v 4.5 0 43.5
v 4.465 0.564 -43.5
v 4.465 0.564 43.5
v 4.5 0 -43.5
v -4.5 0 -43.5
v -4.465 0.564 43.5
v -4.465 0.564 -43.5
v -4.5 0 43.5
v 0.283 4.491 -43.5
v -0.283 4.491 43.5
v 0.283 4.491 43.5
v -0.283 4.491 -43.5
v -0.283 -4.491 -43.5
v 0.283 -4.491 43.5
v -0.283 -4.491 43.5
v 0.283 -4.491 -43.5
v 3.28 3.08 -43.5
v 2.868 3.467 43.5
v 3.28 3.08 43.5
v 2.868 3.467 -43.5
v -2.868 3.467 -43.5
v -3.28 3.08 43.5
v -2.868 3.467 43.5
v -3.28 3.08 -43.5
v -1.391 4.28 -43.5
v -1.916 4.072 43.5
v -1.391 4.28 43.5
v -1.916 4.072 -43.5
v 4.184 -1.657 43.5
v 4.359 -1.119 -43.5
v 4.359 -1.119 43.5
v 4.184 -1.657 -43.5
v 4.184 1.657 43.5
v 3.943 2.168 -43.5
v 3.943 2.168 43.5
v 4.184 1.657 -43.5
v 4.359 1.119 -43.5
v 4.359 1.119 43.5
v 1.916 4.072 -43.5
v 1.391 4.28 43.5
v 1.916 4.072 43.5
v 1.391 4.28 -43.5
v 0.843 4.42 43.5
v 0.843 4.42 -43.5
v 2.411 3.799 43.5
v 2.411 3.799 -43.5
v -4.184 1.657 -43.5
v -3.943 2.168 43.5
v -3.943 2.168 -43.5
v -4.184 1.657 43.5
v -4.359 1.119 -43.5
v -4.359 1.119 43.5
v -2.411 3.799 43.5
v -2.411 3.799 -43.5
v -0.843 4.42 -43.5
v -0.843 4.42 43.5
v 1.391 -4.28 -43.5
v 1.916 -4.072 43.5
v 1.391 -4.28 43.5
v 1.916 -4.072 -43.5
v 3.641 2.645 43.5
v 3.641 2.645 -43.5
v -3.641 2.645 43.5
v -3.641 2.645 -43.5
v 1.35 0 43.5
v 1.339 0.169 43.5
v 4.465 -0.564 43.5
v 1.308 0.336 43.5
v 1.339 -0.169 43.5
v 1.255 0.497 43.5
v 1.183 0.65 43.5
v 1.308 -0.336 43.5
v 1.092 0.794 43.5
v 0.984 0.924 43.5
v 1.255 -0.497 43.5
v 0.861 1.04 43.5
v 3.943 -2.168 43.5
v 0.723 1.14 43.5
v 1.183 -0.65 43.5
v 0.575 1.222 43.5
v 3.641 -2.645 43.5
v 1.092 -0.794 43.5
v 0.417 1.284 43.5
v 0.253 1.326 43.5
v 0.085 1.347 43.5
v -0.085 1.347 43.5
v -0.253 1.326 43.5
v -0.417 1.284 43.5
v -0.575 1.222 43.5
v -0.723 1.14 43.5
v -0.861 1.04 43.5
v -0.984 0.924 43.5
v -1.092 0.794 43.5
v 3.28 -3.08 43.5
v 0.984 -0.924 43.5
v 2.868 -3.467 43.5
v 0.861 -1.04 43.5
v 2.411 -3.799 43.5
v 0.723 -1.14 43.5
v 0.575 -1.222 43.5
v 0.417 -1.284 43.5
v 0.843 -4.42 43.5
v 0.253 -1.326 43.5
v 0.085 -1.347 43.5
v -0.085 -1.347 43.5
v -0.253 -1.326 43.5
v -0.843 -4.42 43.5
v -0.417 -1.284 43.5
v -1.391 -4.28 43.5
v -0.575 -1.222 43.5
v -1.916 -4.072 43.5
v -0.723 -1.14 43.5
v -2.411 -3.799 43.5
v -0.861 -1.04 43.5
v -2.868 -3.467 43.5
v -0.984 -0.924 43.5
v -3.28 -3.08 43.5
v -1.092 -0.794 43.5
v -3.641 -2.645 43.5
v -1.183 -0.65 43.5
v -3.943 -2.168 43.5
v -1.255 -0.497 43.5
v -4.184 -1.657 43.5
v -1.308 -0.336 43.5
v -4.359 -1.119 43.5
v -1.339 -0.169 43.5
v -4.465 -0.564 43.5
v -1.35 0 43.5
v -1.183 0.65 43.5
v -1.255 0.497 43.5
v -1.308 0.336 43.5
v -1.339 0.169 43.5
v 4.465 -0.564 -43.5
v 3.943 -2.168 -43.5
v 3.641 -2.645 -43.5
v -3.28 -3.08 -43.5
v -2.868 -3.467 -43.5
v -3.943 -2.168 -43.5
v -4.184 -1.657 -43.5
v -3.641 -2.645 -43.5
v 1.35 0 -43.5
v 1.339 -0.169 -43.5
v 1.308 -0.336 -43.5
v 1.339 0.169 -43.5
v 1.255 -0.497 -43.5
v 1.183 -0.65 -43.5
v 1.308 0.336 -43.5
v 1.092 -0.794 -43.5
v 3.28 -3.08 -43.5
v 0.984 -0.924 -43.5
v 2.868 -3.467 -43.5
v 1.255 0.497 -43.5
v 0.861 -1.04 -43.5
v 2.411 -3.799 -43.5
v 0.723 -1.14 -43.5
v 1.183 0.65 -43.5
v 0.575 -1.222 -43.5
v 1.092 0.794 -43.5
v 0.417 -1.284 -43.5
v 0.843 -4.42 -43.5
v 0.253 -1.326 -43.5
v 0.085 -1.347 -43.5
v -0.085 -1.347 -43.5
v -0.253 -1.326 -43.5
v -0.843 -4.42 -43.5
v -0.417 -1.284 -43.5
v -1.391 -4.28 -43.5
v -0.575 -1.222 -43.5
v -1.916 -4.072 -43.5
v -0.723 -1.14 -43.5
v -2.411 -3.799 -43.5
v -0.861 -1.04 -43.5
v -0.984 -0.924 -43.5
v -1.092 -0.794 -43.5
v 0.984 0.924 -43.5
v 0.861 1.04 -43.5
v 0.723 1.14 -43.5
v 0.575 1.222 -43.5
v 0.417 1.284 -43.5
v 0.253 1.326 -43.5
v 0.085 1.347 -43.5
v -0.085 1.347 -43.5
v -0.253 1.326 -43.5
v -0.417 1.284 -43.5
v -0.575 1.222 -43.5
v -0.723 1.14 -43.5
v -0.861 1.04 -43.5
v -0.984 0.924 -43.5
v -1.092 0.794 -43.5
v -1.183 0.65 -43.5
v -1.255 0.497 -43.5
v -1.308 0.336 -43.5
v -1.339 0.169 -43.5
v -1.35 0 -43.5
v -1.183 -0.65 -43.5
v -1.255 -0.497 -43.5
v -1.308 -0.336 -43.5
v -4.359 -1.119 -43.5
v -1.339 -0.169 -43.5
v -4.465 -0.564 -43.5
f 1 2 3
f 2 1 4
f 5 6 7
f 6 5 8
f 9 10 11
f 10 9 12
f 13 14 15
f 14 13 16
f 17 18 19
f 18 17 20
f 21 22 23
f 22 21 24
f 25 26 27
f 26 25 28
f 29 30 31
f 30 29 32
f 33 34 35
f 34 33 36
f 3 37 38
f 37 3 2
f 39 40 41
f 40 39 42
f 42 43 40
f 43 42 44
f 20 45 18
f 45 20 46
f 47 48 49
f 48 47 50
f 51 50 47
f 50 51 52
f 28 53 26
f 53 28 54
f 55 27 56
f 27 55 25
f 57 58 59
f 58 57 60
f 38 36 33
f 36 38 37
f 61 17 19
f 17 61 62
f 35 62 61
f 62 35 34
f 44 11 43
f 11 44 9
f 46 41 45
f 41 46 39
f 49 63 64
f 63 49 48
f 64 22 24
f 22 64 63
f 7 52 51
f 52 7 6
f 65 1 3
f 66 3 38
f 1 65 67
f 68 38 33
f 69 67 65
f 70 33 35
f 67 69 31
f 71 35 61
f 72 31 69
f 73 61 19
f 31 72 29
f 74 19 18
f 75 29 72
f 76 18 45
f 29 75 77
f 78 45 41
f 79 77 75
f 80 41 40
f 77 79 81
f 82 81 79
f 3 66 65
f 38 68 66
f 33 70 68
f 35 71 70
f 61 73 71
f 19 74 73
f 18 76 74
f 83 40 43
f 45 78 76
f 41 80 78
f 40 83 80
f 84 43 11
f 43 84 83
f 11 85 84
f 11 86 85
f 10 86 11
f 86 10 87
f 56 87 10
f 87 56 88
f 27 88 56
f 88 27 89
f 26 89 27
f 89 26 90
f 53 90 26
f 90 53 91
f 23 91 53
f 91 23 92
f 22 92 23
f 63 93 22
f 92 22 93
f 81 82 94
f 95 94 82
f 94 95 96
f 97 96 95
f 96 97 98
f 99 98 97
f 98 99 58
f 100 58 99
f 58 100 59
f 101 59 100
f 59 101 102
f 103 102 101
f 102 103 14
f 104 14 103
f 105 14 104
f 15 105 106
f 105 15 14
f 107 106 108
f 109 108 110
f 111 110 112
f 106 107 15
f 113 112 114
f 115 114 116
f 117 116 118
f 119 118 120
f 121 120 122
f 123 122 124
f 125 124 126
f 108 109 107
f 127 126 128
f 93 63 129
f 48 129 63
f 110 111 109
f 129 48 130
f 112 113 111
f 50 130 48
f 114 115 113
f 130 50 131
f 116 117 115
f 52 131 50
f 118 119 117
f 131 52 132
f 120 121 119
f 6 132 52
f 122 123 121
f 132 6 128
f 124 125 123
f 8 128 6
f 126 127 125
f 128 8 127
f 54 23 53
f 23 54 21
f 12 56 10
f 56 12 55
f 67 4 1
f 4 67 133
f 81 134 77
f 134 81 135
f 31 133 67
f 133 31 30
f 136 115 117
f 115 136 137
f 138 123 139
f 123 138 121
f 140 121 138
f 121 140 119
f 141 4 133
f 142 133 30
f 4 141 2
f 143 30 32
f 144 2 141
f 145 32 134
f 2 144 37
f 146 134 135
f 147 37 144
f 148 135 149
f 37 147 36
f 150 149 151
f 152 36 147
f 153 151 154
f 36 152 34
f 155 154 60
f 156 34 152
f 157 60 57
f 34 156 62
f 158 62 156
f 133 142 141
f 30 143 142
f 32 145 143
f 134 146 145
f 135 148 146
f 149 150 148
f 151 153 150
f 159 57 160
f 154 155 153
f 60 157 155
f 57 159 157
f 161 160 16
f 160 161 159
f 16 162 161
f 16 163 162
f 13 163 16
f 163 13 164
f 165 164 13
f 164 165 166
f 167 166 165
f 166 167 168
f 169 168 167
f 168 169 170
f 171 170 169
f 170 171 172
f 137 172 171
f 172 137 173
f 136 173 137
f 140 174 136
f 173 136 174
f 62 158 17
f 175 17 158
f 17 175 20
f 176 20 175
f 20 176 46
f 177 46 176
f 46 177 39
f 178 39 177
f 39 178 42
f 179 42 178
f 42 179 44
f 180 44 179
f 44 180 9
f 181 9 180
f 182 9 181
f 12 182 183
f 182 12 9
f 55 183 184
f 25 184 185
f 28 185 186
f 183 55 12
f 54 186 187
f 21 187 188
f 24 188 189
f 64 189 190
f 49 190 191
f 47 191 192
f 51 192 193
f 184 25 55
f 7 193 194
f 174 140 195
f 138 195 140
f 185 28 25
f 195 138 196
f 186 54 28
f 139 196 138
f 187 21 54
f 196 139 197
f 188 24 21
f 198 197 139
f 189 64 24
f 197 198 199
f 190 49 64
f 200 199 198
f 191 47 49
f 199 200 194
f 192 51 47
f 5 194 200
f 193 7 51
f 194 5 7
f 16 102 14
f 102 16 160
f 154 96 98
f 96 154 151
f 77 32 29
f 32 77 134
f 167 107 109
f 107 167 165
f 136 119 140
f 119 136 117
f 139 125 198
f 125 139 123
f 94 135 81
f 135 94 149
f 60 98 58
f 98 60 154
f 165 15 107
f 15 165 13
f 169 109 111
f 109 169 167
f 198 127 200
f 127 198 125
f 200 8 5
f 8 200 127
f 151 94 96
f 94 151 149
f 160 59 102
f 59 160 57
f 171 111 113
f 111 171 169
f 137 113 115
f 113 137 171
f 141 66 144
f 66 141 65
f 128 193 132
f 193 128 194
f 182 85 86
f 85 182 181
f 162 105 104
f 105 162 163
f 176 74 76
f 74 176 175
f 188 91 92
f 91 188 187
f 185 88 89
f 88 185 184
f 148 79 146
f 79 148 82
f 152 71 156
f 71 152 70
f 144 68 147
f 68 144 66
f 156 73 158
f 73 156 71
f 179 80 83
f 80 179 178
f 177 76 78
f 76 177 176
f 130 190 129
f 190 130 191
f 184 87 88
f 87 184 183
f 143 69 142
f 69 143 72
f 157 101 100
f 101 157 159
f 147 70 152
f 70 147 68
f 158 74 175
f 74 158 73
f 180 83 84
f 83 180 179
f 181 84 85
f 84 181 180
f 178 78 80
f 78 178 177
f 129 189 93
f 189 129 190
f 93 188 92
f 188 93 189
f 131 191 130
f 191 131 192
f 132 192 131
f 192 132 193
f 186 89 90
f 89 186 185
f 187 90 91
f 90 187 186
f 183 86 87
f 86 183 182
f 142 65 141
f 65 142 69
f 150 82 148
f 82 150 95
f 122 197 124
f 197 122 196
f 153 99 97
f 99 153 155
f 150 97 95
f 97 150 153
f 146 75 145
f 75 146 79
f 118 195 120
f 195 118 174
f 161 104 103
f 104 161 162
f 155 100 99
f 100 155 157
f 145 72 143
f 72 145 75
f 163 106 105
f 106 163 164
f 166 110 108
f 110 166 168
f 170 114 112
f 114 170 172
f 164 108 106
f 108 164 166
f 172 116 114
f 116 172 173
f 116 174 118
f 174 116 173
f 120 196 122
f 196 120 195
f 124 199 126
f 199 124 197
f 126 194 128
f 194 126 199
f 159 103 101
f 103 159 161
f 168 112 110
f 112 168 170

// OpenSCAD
$fn = 50;


difference() {
	union() {
		translate(v = [0, 0, -43.5000000000]) {
			cylinder(h = 87, r = 4.5000000000);
		}
	}
	union() {
		translate(v = [0, 0, -100.0000000000]) {
			cylinder(h = 200, r = 1.3500000000);
		}
	}
}
